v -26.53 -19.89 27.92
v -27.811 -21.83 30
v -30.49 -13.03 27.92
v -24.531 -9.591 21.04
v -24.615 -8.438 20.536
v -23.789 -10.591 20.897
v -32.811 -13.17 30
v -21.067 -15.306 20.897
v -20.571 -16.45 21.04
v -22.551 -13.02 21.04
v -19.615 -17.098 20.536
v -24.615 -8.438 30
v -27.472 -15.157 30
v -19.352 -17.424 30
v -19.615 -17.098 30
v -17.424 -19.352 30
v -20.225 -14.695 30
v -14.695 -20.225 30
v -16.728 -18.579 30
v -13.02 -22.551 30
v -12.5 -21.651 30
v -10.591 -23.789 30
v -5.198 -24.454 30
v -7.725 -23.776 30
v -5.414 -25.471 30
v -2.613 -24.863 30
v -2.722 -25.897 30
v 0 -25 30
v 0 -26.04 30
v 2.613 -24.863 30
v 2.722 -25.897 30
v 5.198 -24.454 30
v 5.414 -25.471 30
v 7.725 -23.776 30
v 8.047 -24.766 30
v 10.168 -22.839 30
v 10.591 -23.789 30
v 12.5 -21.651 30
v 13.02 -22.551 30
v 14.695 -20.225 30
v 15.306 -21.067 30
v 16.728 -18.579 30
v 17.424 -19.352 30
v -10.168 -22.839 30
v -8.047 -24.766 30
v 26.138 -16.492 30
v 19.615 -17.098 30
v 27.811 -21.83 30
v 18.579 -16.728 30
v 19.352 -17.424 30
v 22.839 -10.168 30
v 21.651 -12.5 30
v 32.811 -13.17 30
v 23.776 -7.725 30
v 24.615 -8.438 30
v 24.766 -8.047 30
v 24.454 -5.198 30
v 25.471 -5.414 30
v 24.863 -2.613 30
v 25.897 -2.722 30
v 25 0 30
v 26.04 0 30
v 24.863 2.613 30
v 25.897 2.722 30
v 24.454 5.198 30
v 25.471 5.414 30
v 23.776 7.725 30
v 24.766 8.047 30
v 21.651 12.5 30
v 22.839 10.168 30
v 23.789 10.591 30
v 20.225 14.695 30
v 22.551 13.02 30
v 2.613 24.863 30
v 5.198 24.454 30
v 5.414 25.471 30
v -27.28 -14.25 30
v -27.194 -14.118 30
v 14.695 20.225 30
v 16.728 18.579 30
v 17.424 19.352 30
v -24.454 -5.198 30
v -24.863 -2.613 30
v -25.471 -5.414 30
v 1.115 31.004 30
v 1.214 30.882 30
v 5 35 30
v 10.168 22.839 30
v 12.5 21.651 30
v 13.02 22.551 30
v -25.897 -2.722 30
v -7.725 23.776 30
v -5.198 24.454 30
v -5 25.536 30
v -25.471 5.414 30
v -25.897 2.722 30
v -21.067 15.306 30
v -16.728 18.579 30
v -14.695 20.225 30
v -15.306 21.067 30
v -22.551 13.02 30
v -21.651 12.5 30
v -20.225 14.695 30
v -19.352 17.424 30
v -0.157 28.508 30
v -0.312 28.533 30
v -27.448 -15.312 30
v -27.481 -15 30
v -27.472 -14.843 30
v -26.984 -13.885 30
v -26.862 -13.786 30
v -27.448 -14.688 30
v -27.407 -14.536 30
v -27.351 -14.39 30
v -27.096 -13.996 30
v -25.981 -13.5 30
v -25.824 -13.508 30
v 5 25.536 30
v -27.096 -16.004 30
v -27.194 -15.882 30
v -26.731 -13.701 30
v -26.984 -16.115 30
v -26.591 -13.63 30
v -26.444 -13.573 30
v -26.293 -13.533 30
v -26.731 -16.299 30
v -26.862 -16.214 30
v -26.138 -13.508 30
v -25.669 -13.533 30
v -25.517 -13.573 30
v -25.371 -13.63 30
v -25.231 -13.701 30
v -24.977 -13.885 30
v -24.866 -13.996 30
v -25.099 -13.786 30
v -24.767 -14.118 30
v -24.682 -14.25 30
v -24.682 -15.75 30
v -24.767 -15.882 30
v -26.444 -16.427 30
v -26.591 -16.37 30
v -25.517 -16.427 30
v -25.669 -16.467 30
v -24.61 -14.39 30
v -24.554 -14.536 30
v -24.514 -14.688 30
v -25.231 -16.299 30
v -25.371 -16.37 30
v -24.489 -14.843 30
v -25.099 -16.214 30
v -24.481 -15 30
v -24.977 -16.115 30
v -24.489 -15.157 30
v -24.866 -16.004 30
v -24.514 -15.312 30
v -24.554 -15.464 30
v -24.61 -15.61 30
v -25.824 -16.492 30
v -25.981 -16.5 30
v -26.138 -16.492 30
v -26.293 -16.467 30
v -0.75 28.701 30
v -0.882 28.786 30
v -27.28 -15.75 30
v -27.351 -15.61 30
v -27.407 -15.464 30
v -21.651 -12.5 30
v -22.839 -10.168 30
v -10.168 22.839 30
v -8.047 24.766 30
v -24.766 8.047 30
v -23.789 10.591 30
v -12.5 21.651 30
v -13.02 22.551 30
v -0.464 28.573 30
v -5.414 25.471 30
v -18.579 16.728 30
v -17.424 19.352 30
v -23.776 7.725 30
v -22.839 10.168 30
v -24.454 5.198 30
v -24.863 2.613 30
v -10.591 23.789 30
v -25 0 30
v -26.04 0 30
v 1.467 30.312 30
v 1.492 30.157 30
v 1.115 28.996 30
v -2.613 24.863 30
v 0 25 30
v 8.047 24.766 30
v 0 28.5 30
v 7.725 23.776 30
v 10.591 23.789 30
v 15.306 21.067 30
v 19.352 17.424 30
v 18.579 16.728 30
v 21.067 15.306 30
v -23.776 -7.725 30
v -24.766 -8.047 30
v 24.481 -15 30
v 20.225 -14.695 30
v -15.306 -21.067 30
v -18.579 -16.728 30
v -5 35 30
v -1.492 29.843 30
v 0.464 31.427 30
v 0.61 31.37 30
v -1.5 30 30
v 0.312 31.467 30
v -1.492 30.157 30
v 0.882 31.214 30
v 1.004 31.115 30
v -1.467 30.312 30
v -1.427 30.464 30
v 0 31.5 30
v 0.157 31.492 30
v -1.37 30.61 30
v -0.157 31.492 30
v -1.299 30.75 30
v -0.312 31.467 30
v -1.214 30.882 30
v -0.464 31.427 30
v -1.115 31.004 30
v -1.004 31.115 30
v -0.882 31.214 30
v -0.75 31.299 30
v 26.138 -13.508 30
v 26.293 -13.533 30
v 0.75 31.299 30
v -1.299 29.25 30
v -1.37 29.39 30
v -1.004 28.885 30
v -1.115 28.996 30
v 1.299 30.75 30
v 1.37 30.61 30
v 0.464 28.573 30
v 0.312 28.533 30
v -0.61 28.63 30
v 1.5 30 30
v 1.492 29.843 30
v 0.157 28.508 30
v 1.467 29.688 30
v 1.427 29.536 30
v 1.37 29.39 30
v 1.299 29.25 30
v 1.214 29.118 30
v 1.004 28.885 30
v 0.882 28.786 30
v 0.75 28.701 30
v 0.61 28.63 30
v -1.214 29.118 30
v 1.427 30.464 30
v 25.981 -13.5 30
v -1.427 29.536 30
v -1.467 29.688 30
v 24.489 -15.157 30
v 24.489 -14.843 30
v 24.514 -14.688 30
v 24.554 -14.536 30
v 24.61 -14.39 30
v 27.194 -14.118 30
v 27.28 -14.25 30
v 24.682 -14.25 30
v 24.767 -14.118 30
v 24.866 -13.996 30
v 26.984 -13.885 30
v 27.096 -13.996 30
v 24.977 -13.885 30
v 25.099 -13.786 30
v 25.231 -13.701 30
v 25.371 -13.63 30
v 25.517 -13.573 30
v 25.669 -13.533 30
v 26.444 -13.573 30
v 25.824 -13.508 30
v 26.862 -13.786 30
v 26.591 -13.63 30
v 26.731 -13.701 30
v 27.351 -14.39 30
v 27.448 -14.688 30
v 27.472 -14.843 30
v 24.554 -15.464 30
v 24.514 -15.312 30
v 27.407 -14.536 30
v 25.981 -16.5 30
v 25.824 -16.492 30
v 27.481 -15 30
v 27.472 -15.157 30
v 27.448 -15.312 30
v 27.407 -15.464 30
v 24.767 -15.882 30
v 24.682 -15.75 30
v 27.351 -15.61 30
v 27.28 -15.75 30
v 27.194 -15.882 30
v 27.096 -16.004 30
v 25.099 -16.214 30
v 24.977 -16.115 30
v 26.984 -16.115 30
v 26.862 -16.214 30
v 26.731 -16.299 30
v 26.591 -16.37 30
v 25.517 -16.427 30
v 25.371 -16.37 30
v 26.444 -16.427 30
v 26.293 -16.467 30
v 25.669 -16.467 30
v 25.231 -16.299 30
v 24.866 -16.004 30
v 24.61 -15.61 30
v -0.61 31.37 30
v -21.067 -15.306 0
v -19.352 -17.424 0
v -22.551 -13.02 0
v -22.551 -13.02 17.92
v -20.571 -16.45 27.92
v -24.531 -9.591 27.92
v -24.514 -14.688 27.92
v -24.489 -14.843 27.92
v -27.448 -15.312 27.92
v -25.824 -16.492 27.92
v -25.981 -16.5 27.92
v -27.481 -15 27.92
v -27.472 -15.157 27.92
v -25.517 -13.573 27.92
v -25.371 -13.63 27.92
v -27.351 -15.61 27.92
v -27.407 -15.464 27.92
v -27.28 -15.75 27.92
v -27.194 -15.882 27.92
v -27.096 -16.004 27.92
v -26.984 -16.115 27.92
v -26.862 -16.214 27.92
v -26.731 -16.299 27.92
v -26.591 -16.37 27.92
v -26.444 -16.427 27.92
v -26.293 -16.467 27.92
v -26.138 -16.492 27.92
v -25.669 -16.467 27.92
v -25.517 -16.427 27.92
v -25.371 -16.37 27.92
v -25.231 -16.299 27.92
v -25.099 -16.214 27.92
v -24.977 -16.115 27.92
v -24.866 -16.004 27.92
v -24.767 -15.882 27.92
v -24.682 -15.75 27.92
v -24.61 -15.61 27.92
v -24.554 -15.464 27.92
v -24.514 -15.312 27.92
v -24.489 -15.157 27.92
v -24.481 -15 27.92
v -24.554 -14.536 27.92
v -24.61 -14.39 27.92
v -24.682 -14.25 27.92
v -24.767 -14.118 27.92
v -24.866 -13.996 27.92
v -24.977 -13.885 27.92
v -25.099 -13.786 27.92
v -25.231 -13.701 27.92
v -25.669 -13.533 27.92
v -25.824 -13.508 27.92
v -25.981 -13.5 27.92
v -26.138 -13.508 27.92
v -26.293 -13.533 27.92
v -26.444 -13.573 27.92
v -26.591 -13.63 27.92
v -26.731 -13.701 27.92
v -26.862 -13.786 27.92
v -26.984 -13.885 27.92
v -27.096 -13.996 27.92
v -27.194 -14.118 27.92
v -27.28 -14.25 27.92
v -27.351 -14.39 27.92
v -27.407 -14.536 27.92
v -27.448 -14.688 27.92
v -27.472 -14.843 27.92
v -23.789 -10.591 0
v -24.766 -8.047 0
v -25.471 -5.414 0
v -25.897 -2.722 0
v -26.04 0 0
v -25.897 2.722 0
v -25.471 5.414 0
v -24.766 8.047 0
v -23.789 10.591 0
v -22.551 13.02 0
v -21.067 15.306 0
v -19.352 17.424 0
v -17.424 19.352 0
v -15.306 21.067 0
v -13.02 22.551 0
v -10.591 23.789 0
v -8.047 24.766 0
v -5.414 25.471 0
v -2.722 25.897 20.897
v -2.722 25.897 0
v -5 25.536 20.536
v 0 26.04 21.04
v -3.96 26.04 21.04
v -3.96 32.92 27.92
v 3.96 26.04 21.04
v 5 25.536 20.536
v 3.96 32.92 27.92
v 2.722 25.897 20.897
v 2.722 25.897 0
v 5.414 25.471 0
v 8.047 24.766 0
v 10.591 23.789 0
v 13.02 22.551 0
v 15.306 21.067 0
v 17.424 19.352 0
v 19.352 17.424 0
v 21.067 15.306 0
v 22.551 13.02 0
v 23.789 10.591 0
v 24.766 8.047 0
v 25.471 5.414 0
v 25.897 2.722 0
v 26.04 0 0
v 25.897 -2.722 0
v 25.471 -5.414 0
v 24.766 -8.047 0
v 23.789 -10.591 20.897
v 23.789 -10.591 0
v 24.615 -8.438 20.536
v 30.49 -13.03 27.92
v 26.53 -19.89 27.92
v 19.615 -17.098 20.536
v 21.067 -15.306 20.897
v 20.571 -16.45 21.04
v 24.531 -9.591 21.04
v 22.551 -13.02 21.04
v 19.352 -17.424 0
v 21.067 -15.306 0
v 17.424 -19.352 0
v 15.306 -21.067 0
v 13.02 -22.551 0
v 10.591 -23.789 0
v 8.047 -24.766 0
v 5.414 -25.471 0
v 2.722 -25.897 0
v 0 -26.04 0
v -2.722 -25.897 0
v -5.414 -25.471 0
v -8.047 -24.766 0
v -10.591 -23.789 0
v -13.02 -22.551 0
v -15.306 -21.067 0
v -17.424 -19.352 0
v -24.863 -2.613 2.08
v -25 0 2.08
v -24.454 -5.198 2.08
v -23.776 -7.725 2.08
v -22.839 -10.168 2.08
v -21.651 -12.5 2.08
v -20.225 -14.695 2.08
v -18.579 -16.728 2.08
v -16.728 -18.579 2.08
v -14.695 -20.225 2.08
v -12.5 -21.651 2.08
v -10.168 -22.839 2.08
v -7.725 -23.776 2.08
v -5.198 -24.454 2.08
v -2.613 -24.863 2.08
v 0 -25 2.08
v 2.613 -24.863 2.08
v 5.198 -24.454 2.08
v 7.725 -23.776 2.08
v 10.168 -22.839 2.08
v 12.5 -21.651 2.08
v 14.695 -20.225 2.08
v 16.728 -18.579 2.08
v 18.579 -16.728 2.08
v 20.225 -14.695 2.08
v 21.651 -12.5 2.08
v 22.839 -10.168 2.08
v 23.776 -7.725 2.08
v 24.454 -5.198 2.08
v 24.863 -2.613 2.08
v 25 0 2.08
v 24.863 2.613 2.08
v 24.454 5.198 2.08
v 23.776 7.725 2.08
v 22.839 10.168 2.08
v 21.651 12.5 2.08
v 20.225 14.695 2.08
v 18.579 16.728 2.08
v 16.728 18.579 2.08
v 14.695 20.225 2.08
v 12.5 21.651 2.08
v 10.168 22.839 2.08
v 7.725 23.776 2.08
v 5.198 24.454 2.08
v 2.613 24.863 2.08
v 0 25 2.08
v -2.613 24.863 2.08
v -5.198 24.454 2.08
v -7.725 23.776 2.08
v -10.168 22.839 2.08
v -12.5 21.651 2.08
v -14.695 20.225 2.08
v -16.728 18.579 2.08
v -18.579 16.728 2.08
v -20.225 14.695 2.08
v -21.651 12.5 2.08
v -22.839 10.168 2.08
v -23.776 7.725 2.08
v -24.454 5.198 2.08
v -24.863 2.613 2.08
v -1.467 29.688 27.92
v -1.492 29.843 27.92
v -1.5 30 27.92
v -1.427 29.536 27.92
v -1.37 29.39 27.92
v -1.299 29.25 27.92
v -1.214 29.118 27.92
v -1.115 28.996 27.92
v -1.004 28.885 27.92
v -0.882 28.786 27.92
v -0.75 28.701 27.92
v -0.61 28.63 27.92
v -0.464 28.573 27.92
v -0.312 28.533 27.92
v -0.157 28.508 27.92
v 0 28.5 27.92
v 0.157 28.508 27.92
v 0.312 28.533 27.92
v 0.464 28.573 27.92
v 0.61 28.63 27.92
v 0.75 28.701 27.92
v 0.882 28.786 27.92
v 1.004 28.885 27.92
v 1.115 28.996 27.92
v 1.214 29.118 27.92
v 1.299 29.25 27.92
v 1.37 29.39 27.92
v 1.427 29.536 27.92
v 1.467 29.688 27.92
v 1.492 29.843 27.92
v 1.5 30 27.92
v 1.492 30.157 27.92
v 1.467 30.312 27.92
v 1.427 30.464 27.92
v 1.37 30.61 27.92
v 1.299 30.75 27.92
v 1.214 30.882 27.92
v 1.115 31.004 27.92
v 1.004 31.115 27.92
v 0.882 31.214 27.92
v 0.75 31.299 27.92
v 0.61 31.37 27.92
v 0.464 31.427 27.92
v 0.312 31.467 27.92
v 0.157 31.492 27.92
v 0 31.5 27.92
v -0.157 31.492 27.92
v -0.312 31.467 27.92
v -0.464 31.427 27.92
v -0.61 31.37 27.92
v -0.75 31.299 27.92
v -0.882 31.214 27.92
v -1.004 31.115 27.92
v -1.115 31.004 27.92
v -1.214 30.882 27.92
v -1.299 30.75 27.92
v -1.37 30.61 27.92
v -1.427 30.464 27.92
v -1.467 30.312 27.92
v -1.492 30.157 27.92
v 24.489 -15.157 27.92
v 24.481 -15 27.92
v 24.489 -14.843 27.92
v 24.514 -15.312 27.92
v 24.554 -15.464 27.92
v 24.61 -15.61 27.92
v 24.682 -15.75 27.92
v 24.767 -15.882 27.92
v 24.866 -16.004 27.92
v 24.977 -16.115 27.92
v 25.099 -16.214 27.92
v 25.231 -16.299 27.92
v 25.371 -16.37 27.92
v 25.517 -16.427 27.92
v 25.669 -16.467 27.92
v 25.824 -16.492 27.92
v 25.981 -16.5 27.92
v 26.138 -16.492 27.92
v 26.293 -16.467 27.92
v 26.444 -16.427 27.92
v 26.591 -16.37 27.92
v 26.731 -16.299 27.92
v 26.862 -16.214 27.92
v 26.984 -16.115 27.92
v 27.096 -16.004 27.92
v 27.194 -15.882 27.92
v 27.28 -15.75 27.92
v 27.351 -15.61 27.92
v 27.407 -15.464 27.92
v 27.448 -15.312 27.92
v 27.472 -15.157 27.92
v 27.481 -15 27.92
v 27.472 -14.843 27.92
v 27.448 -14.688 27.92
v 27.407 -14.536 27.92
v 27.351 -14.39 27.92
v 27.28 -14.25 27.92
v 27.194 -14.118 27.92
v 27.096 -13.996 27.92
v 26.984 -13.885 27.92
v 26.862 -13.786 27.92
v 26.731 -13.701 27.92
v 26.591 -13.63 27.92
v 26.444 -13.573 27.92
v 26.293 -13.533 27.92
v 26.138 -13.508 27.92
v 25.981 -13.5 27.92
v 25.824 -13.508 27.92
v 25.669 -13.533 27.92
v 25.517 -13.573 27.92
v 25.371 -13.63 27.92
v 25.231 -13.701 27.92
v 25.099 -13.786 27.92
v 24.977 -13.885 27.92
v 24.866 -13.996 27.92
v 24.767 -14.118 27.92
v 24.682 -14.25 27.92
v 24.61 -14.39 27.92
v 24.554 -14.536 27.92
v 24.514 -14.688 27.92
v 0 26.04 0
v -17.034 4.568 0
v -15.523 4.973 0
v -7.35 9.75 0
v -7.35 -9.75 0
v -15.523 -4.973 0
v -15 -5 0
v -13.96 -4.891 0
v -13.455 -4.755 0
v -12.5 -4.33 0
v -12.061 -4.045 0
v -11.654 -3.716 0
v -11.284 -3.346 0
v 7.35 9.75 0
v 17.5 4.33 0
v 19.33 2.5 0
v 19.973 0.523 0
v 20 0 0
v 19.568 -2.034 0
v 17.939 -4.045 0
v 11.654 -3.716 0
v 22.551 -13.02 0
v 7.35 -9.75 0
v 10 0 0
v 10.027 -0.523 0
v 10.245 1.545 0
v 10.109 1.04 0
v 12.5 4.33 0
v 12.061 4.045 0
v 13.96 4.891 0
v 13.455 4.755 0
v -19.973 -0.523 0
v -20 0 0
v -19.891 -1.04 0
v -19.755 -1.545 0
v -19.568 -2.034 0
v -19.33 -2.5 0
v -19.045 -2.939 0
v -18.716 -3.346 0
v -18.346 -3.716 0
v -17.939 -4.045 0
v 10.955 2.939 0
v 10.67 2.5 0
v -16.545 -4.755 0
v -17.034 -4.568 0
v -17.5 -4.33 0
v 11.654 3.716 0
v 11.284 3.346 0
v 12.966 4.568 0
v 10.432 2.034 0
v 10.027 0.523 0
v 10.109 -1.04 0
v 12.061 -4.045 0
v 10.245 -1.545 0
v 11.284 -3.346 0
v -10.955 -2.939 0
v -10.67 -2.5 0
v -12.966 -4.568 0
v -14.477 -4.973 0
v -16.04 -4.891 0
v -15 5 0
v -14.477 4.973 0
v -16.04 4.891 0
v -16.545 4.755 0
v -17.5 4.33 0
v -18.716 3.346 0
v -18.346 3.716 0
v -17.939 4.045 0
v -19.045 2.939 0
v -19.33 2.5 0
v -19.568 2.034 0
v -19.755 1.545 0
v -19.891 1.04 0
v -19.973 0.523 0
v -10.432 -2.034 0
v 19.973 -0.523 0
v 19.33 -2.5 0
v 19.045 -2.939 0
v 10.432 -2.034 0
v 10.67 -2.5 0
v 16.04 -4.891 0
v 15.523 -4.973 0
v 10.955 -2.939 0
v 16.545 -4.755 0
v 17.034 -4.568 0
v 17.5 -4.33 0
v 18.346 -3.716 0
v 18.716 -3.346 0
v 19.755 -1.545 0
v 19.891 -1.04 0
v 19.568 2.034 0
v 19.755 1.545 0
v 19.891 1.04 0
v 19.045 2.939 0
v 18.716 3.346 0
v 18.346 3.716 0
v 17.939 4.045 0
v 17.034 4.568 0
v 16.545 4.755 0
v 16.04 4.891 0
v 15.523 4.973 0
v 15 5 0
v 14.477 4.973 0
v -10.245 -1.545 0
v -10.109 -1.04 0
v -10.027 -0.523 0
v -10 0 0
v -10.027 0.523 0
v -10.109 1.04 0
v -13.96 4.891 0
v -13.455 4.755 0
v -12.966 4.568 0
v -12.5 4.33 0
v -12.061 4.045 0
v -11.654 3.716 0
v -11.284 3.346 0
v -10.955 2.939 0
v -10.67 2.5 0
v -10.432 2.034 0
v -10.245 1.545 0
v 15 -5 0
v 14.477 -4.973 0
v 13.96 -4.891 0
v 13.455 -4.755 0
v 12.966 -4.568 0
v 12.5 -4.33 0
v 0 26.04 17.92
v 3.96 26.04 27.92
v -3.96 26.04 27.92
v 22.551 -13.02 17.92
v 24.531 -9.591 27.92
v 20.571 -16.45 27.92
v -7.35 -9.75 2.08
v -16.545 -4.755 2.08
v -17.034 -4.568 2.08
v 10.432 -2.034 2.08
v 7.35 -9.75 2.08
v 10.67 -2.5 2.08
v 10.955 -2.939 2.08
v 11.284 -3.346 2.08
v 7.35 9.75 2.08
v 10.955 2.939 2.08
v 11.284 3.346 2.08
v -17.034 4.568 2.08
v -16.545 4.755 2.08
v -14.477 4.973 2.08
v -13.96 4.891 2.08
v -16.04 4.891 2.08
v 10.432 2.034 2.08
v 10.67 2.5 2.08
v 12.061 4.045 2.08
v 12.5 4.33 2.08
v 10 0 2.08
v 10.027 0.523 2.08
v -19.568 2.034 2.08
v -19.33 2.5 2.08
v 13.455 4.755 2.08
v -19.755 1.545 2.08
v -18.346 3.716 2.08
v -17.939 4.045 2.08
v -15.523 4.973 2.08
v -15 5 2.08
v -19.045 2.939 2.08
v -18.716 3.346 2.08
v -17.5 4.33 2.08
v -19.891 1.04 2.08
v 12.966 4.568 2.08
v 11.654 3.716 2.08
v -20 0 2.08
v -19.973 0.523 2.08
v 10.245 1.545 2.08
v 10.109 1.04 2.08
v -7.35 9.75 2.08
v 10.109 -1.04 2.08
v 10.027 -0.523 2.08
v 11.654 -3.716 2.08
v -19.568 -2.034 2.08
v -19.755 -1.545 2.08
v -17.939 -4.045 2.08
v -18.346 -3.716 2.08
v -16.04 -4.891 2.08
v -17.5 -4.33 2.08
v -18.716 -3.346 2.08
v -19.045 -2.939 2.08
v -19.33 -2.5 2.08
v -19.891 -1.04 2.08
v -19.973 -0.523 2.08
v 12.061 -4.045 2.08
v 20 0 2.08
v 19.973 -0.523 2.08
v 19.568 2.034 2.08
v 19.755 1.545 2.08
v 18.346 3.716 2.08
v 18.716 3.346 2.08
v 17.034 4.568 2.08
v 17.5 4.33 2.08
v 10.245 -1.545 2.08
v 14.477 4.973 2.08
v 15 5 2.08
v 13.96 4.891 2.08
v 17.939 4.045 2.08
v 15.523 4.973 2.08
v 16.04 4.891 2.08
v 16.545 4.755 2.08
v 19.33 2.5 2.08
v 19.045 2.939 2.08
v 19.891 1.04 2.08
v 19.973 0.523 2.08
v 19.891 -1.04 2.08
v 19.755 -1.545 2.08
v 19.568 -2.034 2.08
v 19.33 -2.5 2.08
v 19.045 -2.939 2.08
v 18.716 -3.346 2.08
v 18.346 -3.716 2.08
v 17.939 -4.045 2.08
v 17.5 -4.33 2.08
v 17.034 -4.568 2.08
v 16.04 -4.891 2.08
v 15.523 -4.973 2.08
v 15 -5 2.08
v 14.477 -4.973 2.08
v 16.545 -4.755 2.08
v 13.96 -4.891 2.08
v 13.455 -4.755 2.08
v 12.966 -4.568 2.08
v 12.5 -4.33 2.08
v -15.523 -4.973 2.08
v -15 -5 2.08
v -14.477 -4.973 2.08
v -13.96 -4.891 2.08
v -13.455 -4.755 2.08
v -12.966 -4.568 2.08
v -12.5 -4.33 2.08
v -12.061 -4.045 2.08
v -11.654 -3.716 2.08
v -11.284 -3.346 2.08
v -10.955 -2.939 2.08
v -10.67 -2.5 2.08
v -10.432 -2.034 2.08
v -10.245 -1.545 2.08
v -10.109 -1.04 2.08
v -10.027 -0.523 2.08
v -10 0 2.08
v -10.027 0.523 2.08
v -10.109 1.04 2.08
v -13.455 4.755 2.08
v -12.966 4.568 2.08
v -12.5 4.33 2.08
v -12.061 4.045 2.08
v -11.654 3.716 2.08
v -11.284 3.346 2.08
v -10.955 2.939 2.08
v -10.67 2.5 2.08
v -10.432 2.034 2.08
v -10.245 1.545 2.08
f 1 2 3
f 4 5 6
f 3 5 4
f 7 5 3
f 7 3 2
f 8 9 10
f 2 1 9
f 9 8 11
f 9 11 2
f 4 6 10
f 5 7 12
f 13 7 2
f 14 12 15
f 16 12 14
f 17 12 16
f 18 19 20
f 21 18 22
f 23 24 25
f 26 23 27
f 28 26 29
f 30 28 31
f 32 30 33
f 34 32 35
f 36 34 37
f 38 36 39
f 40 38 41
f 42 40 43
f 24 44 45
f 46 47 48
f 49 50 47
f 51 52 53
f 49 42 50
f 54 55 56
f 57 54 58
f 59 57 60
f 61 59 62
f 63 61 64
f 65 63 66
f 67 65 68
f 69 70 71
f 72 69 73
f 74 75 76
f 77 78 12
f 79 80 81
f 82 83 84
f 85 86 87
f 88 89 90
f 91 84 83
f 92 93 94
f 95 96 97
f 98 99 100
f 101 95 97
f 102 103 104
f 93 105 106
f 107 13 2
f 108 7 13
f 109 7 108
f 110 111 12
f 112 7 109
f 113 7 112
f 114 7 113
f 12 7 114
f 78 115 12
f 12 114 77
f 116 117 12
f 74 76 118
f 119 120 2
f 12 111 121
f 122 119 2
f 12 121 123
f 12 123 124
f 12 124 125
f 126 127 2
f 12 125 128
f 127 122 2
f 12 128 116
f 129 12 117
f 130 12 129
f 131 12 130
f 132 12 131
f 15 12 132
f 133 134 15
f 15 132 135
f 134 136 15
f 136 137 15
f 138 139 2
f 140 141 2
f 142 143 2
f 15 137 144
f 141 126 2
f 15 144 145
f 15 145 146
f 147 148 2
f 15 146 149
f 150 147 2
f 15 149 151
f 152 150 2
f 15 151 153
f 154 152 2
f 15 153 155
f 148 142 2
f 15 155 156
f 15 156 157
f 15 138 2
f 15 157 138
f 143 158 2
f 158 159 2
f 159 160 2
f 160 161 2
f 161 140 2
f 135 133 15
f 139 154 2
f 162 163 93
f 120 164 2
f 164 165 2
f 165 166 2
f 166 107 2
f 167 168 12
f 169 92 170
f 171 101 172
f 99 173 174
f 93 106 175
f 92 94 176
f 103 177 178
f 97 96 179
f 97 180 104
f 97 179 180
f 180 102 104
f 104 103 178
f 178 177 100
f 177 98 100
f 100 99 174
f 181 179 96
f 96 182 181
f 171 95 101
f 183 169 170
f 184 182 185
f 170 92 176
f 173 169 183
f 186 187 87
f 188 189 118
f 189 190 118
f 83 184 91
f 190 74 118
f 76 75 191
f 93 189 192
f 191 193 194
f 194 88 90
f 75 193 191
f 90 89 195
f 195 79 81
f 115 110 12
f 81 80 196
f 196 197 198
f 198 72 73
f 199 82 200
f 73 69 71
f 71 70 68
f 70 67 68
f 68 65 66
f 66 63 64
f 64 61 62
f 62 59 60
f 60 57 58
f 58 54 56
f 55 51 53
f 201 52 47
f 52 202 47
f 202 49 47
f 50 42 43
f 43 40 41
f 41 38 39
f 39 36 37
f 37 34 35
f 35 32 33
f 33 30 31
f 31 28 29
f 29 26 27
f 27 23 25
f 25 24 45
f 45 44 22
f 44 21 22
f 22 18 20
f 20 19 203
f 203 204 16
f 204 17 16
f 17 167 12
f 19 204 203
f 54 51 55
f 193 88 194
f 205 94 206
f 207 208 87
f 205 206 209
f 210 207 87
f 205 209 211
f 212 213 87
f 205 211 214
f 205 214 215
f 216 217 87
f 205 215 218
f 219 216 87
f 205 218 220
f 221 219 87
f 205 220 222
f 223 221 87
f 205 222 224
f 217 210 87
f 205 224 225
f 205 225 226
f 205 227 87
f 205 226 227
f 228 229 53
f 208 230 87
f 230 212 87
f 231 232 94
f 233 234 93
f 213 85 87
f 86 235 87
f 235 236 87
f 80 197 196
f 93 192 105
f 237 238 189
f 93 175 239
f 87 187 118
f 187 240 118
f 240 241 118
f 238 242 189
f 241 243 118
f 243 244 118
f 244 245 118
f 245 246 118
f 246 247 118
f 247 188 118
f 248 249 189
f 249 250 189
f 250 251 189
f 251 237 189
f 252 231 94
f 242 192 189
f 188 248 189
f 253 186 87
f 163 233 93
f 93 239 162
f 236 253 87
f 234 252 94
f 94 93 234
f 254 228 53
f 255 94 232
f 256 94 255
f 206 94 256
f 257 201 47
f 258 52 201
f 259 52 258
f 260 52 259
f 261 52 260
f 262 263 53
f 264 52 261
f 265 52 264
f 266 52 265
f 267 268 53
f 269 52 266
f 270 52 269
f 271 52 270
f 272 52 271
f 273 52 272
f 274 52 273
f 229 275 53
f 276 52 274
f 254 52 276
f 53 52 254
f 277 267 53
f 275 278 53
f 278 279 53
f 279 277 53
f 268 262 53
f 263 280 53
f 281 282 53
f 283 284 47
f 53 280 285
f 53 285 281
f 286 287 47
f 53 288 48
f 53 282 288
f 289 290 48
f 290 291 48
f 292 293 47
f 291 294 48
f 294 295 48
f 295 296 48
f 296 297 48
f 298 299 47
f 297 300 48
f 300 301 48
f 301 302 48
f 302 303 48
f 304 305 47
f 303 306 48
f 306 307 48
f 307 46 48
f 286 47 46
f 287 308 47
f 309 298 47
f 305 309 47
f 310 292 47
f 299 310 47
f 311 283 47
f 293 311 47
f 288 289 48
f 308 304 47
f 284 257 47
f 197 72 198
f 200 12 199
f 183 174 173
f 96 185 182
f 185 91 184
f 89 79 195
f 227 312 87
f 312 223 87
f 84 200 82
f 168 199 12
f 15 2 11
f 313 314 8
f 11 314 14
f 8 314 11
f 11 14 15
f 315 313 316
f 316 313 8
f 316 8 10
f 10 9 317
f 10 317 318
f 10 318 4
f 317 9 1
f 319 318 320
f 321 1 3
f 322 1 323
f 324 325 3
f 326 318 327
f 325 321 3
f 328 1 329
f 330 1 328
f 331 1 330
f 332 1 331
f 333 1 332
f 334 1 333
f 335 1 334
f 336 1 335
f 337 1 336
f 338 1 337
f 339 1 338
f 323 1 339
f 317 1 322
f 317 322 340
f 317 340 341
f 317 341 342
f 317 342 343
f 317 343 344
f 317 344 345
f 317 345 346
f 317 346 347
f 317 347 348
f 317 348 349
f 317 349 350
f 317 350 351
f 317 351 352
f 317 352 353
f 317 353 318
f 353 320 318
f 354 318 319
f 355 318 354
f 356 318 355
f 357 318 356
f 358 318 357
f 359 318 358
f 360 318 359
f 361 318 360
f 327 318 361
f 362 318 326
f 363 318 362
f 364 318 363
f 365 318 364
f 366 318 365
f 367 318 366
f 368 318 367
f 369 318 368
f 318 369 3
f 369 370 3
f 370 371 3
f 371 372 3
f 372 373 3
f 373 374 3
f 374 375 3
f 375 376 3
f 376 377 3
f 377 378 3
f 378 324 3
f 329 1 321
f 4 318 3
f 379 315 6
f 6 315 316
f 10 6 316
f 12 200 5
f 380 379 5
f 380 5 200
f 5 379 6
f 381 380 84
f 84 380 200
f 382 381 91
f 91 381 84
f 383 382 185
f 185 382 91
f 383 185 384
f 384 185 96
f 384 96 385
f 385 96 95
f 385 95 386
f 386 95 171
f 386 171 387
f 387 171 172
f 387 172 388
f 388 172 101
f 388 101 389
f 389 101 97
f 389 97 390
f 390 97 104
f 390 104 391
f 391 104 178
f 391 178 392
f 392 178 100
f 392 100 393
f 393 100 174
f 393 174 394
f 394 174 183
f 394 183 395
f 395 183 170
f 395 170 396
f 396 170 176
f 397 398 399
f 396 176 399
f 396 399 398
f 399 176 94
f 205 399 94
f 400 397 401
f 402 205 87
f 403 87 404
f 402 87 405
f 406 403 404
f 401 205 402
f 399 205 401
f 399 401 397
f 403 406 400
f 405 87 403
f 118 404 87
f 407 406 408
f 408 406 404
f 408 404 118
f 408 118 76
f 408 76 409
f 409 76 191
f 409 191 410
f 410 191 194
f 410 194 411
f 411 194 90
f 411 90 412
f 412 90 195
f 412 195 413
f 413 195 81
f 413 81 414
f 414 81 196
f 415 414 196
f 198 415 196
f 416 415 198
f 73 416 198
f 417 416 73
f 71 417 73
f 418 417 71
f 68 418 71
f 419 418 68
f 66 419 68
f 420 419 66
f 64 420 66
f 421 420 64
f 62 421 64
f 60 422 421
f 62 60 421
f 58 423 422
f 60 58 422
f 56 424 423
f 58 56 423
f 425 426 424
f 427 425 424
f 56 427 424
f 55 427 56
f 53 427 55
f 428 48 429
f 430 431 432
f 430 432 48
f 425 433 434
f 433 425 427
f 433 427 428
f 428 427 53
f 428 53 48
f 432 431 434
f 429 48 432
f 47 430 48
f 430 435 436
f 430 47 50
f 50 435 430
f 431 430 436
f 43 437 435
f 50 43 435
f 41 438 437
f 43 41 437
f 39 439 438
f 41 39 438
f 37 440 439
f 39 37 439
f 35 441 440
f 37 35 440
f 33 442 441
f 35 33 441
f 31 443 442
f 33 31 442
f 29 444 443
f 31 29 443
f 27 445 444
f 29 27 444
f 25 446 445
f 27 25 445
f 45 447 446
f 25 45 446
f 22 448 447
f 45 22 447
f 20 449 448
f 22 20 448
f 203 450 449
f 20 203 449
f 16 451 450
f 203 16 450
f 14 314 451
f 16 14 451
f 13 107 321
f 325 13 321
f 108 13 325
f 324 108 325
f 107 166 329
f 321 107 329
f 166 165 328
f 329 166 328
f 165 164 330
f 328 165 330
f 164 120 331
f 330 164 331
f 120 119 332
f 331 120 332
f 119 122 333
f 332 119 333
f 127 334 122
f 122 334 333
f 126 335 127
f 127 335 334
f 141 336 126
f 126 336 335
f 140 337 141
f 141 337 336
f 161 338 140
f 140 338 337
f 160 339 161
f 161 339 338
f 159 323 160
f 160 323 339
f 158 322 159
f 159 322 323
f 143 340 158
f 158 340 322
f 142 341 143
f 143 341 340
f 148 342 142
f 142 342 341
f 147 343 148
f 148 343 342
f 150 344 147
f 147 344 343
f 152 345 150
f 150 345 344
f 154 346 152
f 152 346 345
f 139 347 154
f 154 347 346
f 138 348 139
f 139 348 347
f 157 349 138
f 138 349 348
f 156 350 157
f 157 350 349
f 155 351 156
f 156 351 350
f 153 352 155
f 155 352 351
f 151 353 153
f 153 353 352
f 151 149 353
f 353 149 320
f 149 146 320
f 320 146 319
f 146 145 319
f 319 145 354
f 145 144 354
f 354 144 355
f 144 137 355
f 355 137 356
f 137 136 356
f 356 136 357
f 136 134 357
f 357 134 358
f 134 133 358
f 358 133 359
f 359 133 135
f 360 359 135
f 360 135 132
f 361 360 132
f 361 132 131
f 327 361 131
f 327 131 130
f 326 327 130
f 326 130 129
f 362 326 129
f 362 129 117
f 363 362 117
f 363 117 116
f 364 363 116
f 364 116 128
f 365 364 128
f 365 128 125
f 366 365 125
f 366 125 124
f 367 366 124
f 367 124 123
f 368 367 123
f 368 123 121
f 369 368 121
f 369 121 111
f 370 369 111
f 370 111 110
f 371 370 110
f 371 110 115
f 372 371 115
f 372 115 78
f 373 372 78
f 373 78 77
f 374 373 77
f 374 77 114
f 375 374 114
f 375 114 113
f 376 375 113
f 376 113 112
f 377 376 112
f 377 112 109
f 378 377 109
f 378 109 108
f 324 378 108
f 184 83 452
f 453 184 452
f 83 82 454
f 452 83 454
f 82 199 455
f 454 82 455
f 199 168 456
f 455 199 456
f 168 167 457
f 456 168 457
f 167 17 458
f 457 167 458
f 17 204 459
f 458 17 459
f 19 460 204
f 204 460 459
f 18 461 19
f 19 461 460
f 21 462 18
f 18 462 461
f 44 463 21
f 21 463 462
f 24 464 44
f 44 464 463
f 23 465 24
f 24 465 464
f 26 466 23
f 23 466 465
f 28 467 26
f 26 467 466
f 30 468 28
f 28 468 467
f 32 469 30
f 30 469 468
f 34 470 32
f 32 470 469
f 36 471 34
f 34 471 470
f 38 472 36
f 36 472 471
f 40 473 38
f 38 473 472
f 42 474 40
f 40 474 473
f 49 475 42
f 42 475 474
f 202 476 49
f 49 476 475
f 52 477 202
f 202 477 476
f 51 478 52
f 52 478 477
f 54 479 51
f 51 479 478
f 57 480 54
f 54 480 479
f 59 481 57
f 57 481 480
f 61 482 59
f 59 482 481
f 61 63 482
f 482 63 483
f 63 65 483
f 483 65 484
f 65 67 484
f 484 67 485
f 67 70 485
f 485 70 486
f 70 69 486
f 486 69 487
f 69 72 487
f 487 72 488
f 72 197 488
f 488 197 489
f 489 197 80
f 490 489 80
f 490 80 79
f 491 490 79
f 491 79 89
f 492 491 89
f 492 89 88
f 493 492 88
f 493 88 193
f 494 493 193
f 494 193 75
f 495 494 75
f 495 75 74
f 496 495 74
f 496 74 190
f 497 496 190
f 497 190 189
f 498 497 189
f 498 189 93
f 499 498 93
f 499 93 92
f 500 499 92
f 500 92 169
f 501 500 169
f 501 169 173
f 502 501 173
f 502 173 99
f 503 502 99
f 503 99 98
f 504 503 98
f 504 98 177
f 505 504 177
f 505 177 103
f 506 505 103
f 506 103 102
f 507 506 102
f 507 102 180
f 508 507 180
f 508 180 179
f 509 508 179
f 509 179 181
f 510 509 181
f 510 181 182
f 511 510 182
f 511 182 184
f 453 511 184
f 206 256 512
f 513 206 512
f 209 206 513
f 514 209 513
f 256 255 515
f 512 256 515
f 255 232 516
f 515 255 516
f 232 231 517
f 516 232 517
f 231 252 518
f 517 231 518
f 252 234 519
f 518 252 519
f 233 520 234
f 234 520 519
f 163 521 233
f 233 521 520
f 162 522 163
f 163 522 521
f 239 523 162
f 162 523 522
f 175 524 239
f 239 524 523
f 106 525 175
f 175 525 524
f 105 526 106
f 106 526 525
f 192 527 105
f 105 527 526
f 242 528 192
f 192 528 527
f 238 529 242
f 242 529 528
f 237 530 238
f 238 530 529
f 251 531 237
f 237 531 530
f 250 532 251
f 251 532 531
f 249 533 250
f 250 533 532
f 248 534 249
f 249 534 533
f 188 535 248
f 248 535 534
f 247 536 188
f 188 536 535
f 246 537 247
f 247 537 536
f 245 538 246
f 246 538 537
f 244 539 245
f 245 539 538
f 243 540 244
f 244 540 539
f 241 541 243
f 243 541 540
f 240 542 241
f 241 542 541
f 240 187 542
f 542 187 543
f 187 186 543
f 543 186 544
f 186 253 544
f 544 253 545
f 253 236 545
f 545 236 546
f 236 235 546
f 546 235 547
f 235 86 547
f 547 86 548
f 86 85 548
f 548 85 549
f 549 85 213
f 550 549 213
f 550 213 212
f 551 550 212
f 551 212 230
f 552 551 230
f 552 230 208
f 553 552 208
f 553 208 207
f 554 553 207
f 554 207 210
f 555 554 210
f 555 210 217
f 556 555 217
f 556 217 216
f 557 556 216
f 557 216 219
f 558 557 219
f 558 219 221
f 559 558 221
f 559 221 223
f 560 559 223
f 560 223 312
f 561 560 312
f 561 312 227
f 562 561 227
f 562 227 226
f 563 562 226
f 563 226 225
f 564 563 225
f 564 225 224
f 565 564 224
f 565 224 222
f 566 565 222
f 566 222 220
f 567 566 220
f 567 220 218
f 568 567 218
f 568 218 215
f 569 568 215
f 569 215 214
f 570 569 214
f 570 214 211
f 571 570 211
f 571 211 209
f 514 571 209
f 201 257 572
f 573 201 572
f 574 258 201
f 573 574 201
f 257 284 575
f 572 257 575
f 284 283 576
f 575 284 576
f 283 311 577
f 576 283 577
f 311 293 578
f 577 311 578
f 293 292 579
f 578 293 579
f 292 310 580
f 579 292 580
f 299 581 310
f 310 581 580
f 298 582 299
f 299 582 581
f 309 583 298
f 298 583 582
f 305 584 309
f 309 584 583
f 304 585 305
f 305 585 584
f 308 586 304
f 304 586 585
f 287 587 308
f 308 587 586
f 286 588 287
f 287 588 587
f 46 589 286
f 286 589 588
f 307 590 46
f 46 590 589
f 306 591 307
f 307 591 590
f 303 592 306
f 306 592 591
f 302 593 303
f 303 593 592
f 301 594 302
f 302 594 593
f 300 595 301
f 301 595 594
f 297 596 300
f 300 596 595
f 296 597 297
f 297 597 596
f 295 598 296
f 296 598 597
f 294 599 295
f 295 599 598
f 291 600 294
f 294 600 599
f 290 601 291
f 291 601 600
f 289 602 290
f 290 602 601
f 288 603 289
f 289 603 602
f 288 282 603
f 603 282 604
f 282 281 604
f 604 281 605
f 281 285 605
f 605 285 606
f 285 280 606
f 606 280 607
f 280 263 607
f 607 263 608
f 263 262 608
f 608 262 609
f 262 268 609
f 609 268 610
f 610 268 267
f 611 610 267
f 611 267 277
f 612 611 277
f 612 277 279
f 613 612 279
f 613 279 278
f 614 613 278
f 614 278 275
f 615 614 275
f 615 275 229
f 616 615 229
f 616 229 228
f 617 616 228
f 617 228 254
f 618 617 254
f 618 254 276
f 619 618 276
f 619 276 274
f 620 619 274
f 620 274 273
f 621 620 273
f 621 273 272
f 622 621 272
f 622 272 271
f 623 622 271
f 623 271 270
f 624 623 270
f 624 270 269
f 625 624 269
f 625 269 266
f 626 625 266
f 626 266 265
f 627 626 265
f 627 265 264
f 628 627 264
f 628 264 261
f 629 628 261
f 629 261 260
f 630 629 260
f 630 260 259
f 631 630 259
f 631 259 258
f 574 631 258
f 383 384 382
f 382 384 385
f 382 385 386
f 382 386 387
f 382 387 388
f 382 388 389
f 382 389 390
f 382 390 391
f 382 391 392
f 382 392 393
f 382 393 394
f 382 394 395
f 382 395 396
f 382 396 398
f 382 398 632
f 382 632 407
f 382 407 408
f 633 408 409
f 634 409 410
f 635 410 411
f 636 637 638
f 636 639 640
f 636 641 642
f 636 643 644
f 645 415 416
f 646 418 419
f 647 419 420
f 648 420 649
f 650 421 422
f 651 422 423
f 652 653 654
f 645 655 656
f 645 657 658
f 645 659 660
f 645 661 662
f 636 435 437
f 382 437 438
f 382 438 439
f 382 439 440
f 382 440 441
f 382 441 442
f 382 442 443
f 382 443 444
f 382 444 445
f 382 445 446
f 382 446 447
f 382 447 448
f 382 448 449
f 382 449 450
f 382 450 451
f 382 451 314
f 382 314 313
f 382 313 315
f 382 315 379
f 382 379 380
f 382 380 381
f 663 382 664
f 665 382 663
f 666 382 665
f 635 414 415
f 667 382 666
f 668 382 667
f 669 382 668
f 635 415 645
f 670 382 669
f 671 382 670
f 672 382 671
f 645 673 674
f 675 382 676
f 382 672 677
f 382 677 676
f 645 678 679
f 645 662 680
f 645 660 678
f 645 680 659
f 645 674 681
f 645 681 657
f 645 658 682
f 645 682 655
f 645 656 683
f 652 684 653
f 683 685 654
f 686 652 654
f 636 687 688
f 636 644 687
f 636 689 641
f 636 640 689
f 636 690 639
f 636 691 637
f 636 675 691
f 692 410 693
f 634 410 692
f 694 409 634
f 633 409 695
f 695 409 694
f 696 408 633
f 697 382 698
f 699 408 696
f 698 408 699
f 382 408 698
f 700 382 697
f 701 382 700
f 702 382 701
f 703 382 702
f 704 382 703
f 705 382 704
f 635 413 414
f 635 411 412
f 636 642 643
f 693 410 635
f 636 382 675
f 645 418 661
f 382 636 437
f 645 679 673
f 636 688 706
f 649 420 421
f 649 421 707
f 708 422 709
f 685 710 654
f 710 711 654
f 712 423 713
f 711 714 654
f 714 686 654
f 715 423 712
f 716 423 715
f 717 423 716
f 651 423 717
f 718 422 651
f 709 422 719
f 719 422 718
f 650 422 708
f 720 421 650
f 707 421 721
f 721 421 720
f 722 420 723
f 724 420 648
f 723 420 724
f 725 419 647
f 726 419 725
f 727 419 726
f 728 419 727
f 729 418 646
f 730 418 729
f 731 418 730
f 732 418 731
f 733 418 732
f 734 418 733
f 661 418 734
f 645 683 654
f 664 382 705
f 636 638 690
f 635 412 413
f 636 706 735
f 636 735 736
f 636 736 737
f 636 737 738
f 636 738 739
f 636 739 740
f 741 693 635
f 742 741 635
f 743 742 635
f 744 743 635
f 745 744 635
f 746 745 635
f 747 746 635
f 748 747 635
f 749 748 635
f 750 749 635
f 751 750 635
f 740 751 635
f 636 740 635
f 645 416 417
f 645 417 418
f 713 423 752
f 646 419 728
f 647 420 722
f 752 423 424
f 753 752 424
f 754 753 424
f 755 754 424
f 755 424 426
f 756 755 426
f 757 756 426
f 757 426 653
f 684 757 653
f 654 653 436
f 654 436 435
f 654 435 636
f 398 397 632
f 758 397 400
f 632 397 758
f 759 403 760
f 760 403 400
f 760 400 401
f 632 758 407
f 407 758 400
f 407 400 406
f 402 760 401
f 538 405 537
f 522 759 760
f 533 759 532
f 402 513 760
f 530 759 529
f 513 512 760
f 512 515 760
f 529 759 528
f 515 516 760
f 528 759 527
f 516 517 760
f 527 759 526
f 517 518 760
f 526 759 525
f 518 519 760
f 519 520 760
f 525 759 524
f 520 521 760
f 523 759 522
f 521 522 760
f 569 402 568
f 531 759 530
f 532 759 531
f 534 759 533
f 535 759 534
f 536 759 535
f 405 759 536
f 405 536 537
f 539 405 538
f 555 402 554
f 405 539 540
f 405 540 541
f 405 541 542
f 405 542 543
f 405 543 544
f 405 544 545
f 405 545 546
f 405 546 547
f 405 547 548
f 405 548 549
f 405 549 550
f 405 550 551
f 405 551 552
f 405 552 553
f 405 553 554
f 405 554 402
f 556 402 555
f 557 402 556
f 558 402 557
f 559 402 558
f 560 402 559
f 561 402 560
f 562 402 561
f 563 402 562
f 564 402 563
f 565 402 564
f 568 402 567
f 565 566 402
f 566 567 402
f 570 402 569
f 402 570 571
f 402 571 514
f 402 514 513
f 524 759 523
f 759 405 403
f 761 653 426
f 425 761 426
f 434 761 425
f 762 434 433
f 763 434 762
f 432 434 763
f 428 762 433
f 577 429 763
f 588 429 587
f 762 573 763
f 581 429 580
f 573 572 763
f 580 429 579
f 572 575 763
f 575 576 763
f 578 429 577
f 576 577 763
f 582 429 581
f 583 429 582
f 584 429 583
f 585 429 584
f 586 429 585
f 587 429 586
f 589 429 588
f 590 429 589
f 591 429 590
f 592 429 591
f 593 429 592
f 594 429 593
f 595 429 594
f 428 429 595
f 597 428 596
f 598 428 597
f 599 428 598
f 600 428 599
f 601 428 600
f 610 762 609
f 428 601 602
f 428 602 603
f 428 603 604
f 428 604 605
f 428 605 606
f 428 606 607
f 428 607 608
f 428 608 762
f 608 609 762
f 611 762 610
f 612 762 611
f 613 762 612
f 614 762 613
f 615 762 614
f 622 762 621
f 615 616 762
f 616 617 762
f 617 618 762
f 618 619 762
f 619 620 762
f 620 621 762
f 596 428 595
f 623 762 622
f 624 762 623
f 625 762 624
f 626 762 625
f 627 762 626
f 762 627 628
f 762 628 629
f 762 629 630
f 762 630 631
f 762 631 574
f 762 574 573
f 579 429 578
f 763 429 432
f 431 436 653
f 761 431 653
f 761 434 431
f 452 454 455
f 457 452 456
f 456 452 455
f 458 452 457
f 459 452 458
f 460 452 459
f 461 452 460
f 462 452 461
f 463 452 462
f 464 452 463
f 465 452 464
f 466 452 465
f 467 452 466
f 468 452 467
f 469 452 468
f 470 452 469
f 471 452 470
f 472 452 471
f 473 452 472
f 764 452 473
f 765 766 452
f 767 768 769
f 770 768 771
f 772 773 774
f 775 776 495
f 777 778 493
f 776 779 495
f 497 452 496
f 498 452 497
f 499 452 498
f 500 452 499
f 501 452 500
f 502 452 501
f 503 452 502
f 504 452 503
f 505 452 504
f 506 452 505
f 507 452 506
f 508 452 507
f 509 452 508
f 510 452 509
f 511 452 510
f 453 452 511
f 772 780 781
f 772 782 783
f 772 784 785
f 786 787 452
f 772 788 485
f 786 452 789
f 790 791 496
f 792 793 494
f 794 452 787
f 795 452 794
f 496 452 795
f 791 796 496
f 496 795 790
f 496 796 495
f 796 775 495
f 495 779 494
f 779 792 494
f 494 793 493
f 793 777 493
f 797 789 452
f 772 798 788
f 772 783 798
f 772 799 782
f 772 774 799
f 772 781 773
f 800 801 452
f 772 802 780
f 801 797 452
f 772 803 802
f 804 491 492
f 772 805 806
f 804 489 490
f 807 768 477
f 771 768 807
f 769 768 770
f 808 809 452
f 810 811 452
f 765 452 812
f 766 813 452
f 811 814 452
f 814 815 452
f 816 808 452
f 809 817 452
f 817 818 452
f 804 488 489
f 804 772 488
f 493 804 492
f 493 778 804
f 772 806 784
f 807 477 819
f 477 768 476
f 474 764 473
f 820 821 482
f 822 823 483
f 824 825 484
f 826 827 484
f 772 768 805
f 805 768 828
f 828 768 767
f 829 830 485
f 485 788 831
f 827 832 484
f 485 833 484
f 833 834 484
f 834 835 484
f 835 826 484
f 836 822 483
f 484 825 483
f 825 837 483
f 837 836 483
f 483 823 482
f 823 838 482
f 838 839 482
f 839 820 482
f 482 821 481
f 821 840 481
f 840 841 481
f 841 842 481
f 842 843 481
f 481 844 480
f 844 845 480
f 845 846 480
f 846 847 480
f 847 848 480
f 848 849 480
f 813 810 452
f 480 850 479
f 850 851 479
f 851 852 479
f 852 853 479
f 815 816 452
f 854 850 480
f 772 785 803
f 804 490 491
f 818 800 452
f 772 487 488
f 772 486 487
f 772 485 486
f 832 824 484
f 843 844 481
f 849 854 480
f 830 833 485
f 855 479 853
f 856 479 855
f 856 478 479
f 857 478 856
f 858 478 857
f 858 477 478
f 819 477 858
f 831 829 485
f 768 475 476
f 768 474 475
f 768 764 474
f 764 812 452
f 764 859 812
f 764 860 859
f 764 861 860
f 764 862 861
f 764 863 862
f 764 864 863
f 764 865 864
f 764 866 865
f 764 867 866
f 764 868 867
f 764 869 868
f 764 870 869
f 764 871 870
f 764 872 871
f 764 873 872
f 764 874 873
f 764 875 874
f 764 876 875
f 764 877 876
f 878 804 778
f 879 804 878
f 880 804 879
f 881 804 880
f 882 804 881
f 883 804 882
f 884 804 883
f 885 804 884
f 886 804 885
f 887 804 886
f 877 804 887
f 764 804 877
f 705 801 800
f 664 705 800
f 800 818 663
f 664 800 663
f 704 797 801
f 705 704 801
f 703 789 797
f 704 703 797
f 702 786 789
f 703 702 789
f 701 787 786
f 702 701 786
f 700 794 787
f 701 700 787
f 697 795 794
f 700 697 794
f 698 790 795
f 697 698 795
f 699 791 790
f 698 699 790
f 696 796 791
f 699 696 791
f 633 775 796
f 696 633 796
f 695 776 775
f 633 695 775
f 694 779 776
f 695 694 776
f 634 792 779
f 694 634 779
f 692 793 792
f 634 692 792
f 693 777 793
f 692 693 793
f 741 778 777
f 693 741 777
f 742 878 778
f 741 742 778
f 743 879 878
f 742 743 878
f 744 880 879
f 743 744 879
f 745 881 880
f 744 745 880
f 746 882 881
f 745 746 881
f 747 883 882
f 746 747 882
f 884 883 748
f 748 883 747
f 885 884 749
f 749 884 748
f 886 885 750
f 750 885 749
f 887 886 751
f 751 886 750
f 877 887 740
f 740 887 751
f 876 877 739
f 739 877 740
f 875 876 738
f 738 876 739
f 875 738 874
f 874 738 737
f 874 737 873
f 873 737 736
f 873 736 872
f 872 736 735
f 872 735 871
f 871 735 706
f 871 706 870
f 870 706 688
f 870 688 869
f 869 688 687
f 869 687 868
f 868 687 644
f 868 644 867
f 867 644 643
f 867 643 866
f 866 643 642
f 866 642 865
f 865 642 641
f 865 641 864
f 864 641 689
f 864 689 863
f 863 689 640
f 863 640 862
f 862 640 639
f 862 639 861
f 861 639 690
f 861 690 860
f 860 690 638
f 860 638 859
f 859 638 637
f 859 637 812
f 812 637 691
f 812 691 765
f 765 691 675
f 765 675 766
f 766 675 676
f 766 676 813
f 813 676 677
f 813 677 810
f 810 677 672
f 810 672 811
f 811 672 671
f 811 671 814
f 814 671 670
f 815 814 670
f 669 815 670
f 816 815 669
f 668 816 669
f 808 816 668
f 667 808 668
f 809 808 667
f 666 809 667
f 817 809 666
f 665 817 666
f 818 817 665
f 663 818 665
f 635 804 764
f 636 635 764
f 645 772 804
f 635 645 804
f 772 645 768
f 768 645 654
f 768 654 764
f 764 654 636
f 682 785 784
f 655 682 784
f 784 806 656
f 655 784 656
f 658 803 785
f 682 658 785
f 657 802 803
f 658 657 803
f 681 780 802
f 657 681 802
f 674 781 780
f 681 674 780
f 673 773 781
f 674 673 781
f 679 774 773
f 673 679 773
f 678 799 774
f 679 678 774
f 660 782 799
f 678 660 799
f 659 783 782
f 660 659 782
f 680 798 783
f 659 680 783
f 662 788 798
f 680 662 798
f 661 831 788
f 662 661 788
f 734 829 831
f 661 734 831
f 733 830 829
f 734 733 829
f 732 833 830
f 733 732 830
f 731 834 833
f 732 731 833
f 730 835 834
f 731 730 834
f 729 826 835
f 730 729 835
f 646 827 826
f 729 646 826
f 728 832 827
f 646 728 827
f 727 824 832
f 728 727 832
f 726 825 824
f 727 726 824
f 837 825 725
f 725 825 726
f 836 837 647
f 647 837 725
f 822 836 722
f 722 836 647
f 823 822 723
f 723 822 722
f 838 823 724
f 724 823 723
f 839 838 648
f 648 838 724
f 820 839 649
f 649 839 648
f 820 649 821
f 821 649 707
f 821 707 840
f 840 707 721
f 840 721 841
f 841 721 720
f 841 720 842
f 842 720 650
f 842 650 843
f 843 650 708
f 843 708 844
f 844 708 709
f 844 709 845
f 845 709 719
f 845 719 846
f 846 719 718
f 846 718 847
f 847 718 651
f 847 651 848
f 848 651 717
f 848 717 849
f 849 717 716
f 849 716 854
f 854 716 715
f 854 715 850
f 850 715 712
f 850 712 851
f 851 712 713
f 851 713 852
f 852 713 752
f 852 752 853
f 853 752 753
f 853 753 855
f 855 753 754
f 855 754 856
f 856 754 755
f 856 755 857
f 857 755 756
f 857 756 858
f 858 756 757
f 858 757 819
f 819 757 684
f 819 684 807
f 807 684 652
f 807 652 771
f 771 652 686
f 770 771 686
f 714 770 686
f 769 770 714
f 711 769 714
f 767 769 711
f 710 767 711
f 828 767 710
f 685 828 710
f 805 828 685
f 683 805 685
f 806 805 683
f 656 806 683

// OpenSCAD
/*
 * Potting seal
 *
 * Copyright 2013 b@Zi.iS
 *
 * License CC BY 3.0
 */
$fn=60;

seal();

module seal(
	r = 50/2,
	h = 30,
	hole = [14.7, 19.5],
	tab = [3/2, 10],
	t = .52*2
) {

	difference() {
		union() {
			cylinder(
				r=r+t,
				h=h
			);
			for(x=[0:2]) {
				rotate([
					0,
					0,
					360/3*x
				]) {
					translate([
						-tab[1]/2,
						r,
						h-tab[1]
					]) {
						rotate([
							45,
							0,
							0
						]) {
							cube([
								tab[1],
								tab[1]*2,
								tab[1]
							]);
						}
					}
					
				}
			}
		}
		//support hollow
		for(x=[0:2]) {
			rotate([
				0,
				0,
				360/3*x
			]) {
				translate([
					0,
					r + tab[1]/2,
					1
				]) {
					cylinder(
						r = tab[0],
						h = h + t*2
					);
				}
				translate([
					-tab[1]/2 +t,
					r+t,
					h - t*2 -tab[1]
				]) {
					cube([
						tab[1] - t*2,
						tab[1],
						tab[1]
					]);
				}
			}

		}
		translate([
			0,
			0,
			t*2
		]) {
			cylinder(
				r=r,
				h=h+1
			);
		}
		translate([
			0,
			0,
			h
		]) {
			cylinder(
				r=100,
				h=100
			);
		}
		cube(center = true, [
			hole[0],
			hole[1],
			2 + t*3
		]);
		for(x=[0:1]) {
			translate([
				-r/5 *3 + r/5 *6*x,
				0,
				-1
			]) {
				cylinder(
					r=r/5,
					h= 2+t*2
				);
			}
		}

		
	}
}
